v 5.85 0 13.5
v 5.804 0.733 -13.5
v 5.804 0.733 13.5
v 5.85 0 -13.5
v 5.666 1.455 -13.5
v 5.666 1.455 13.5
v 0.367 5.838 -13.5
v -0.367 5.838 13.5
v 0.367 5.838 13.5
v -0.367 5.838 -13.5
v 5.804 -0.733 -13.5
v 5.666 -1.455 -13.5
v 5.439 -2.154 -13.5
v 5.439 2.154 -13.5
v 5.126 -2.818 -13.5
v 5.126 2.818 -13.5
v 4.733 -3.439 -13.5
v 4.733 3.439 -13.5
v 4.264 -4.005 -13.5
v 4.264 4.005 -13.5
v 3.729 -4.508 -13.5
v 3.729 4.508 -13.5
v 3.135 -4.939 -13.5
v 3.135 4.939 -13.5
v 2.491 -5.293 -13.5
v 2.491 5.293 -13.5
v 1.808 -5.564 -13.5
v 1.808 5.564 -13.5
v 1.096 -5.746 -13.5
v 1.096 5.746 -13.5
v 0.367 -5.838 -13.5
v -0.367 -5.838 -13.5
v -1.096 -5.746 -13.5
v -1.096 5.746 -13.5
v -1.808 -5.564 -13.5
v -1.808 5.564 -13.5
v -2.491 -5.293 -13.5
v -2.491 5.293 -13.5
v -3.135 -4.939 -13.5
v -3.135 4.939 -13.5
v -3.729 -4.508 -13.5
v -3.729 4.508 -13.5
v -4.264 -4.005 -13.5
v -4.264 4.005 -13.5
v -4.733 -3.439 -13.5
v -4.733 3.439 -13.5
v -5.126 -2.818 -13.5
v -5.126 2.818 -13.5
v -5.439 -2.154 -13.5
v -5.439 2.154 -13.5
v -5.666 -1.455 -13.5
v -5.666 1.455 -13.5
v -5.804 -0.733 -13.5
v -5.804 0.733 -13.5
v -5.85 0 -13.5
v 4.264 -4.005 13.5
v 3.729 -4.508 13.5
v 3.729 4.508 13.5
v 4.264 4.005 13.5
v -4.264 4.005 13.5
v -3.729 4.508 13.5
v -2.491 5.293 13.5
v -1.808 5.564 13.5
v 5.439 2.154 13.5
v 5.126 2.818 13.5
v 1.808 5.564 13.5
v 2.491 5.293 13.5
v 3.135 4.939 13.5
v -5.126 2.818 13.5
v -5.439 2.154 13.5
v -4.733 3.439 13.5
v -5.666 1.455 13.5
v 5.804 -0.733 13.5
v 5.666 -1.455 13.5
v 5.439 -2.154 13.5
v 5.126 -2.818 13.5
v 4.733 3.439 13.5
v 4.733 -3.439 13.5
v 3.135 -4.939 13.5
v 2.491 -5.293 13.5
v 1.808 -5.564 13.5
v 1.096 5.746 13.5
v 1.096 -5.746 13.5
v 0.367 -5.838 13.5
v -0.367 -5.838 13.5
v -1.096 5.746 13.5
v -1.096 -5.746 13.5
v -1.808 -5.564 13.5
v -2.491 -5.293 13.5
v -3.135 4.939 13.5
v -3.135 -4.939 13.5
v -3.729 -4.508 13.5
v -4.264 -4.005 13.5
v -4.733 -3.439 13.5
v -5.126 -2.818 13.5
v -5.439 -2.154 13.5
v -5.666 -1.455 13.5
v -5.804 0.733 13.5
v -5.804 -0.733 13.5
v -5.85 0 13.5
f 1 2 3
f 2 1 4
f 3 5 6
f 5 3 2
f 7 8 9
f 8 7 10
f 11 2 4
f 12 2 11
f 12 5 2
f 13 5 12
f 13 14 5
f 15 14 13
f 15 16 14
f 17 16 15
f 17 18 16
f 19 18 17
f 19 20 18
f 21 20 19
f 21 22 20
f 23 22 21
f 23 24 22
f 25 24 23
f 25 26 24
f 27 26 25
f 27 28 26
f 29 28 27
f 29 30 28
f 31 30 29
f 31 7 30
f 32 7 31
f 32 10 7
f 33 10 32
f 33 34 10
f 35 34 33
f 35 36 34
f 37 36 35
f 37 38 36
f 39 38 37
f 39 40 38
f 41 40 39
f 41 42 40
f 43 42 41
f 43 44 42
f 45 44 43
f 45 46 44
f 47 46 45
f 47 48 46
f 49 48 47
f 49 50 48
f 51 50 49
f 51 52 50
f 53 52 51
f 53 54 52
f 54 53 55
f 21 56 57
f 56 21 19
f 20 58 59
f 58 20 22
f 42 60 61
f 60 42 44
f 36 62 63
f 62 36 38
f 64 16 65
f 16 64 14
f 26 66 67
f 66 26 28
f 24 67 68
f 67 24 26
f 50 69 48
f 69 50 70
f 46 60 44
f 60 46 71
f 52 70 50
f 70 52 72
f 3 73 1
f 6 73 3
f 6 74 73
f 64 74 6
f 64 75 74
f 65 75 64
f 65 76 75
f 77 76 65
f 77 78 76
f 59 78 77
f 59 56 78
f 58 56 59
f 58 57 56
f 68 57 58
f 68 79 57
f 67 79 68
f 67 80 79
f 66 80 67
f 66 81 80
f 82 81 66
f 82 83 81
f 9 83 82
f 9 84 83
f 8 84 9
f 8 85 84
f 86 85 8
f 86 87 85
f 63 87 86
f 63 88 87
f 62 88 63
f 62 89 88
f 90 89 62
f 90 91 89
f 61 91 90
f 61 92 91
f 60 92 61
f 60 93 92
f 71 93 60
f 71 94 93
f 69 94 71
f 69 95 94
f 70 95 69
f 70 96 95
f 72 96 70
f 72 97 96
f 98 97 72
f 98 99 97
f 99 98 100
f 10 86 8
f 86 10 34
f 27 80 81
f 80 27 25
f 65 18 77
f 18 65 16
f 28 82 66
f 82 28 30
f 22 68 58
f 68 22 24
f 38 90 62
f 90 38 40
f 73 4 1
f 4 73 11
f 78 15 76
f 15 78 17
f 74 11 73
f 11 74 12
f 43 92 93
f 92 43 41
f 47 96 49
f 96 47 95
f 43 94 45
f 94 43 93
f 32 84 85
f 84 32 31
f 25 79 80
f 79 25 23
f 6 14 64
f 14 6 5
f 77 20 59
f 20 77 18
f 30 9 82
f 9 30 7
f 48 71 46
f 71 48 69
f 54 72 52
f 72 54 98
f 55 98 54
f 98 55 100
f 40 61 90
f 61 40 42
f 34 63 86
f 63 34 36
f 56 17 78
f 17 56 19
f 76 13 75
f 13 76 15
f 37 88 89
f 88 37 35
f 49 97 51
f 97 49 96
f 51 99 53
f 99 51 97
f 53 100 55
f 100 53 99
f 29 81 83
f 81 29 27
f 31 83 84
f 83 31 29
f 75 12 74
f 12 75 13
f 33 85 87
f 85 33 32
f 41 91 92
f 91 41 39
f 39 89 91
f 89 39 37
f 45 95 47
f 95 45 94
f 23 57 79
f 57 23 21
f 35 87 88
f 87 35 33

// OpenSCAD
$fn = 50;


difference() {
	union() {
		translate(v = [0, 0, -13.5000000000]) {
			cylinder(h = 27, r = 5.8500000000);
		}
	}
	union() {
		translate(v = [0, 0, -100.0000000000]) {
			cylinder(h = 200, r = 0);
		}
	}
}
